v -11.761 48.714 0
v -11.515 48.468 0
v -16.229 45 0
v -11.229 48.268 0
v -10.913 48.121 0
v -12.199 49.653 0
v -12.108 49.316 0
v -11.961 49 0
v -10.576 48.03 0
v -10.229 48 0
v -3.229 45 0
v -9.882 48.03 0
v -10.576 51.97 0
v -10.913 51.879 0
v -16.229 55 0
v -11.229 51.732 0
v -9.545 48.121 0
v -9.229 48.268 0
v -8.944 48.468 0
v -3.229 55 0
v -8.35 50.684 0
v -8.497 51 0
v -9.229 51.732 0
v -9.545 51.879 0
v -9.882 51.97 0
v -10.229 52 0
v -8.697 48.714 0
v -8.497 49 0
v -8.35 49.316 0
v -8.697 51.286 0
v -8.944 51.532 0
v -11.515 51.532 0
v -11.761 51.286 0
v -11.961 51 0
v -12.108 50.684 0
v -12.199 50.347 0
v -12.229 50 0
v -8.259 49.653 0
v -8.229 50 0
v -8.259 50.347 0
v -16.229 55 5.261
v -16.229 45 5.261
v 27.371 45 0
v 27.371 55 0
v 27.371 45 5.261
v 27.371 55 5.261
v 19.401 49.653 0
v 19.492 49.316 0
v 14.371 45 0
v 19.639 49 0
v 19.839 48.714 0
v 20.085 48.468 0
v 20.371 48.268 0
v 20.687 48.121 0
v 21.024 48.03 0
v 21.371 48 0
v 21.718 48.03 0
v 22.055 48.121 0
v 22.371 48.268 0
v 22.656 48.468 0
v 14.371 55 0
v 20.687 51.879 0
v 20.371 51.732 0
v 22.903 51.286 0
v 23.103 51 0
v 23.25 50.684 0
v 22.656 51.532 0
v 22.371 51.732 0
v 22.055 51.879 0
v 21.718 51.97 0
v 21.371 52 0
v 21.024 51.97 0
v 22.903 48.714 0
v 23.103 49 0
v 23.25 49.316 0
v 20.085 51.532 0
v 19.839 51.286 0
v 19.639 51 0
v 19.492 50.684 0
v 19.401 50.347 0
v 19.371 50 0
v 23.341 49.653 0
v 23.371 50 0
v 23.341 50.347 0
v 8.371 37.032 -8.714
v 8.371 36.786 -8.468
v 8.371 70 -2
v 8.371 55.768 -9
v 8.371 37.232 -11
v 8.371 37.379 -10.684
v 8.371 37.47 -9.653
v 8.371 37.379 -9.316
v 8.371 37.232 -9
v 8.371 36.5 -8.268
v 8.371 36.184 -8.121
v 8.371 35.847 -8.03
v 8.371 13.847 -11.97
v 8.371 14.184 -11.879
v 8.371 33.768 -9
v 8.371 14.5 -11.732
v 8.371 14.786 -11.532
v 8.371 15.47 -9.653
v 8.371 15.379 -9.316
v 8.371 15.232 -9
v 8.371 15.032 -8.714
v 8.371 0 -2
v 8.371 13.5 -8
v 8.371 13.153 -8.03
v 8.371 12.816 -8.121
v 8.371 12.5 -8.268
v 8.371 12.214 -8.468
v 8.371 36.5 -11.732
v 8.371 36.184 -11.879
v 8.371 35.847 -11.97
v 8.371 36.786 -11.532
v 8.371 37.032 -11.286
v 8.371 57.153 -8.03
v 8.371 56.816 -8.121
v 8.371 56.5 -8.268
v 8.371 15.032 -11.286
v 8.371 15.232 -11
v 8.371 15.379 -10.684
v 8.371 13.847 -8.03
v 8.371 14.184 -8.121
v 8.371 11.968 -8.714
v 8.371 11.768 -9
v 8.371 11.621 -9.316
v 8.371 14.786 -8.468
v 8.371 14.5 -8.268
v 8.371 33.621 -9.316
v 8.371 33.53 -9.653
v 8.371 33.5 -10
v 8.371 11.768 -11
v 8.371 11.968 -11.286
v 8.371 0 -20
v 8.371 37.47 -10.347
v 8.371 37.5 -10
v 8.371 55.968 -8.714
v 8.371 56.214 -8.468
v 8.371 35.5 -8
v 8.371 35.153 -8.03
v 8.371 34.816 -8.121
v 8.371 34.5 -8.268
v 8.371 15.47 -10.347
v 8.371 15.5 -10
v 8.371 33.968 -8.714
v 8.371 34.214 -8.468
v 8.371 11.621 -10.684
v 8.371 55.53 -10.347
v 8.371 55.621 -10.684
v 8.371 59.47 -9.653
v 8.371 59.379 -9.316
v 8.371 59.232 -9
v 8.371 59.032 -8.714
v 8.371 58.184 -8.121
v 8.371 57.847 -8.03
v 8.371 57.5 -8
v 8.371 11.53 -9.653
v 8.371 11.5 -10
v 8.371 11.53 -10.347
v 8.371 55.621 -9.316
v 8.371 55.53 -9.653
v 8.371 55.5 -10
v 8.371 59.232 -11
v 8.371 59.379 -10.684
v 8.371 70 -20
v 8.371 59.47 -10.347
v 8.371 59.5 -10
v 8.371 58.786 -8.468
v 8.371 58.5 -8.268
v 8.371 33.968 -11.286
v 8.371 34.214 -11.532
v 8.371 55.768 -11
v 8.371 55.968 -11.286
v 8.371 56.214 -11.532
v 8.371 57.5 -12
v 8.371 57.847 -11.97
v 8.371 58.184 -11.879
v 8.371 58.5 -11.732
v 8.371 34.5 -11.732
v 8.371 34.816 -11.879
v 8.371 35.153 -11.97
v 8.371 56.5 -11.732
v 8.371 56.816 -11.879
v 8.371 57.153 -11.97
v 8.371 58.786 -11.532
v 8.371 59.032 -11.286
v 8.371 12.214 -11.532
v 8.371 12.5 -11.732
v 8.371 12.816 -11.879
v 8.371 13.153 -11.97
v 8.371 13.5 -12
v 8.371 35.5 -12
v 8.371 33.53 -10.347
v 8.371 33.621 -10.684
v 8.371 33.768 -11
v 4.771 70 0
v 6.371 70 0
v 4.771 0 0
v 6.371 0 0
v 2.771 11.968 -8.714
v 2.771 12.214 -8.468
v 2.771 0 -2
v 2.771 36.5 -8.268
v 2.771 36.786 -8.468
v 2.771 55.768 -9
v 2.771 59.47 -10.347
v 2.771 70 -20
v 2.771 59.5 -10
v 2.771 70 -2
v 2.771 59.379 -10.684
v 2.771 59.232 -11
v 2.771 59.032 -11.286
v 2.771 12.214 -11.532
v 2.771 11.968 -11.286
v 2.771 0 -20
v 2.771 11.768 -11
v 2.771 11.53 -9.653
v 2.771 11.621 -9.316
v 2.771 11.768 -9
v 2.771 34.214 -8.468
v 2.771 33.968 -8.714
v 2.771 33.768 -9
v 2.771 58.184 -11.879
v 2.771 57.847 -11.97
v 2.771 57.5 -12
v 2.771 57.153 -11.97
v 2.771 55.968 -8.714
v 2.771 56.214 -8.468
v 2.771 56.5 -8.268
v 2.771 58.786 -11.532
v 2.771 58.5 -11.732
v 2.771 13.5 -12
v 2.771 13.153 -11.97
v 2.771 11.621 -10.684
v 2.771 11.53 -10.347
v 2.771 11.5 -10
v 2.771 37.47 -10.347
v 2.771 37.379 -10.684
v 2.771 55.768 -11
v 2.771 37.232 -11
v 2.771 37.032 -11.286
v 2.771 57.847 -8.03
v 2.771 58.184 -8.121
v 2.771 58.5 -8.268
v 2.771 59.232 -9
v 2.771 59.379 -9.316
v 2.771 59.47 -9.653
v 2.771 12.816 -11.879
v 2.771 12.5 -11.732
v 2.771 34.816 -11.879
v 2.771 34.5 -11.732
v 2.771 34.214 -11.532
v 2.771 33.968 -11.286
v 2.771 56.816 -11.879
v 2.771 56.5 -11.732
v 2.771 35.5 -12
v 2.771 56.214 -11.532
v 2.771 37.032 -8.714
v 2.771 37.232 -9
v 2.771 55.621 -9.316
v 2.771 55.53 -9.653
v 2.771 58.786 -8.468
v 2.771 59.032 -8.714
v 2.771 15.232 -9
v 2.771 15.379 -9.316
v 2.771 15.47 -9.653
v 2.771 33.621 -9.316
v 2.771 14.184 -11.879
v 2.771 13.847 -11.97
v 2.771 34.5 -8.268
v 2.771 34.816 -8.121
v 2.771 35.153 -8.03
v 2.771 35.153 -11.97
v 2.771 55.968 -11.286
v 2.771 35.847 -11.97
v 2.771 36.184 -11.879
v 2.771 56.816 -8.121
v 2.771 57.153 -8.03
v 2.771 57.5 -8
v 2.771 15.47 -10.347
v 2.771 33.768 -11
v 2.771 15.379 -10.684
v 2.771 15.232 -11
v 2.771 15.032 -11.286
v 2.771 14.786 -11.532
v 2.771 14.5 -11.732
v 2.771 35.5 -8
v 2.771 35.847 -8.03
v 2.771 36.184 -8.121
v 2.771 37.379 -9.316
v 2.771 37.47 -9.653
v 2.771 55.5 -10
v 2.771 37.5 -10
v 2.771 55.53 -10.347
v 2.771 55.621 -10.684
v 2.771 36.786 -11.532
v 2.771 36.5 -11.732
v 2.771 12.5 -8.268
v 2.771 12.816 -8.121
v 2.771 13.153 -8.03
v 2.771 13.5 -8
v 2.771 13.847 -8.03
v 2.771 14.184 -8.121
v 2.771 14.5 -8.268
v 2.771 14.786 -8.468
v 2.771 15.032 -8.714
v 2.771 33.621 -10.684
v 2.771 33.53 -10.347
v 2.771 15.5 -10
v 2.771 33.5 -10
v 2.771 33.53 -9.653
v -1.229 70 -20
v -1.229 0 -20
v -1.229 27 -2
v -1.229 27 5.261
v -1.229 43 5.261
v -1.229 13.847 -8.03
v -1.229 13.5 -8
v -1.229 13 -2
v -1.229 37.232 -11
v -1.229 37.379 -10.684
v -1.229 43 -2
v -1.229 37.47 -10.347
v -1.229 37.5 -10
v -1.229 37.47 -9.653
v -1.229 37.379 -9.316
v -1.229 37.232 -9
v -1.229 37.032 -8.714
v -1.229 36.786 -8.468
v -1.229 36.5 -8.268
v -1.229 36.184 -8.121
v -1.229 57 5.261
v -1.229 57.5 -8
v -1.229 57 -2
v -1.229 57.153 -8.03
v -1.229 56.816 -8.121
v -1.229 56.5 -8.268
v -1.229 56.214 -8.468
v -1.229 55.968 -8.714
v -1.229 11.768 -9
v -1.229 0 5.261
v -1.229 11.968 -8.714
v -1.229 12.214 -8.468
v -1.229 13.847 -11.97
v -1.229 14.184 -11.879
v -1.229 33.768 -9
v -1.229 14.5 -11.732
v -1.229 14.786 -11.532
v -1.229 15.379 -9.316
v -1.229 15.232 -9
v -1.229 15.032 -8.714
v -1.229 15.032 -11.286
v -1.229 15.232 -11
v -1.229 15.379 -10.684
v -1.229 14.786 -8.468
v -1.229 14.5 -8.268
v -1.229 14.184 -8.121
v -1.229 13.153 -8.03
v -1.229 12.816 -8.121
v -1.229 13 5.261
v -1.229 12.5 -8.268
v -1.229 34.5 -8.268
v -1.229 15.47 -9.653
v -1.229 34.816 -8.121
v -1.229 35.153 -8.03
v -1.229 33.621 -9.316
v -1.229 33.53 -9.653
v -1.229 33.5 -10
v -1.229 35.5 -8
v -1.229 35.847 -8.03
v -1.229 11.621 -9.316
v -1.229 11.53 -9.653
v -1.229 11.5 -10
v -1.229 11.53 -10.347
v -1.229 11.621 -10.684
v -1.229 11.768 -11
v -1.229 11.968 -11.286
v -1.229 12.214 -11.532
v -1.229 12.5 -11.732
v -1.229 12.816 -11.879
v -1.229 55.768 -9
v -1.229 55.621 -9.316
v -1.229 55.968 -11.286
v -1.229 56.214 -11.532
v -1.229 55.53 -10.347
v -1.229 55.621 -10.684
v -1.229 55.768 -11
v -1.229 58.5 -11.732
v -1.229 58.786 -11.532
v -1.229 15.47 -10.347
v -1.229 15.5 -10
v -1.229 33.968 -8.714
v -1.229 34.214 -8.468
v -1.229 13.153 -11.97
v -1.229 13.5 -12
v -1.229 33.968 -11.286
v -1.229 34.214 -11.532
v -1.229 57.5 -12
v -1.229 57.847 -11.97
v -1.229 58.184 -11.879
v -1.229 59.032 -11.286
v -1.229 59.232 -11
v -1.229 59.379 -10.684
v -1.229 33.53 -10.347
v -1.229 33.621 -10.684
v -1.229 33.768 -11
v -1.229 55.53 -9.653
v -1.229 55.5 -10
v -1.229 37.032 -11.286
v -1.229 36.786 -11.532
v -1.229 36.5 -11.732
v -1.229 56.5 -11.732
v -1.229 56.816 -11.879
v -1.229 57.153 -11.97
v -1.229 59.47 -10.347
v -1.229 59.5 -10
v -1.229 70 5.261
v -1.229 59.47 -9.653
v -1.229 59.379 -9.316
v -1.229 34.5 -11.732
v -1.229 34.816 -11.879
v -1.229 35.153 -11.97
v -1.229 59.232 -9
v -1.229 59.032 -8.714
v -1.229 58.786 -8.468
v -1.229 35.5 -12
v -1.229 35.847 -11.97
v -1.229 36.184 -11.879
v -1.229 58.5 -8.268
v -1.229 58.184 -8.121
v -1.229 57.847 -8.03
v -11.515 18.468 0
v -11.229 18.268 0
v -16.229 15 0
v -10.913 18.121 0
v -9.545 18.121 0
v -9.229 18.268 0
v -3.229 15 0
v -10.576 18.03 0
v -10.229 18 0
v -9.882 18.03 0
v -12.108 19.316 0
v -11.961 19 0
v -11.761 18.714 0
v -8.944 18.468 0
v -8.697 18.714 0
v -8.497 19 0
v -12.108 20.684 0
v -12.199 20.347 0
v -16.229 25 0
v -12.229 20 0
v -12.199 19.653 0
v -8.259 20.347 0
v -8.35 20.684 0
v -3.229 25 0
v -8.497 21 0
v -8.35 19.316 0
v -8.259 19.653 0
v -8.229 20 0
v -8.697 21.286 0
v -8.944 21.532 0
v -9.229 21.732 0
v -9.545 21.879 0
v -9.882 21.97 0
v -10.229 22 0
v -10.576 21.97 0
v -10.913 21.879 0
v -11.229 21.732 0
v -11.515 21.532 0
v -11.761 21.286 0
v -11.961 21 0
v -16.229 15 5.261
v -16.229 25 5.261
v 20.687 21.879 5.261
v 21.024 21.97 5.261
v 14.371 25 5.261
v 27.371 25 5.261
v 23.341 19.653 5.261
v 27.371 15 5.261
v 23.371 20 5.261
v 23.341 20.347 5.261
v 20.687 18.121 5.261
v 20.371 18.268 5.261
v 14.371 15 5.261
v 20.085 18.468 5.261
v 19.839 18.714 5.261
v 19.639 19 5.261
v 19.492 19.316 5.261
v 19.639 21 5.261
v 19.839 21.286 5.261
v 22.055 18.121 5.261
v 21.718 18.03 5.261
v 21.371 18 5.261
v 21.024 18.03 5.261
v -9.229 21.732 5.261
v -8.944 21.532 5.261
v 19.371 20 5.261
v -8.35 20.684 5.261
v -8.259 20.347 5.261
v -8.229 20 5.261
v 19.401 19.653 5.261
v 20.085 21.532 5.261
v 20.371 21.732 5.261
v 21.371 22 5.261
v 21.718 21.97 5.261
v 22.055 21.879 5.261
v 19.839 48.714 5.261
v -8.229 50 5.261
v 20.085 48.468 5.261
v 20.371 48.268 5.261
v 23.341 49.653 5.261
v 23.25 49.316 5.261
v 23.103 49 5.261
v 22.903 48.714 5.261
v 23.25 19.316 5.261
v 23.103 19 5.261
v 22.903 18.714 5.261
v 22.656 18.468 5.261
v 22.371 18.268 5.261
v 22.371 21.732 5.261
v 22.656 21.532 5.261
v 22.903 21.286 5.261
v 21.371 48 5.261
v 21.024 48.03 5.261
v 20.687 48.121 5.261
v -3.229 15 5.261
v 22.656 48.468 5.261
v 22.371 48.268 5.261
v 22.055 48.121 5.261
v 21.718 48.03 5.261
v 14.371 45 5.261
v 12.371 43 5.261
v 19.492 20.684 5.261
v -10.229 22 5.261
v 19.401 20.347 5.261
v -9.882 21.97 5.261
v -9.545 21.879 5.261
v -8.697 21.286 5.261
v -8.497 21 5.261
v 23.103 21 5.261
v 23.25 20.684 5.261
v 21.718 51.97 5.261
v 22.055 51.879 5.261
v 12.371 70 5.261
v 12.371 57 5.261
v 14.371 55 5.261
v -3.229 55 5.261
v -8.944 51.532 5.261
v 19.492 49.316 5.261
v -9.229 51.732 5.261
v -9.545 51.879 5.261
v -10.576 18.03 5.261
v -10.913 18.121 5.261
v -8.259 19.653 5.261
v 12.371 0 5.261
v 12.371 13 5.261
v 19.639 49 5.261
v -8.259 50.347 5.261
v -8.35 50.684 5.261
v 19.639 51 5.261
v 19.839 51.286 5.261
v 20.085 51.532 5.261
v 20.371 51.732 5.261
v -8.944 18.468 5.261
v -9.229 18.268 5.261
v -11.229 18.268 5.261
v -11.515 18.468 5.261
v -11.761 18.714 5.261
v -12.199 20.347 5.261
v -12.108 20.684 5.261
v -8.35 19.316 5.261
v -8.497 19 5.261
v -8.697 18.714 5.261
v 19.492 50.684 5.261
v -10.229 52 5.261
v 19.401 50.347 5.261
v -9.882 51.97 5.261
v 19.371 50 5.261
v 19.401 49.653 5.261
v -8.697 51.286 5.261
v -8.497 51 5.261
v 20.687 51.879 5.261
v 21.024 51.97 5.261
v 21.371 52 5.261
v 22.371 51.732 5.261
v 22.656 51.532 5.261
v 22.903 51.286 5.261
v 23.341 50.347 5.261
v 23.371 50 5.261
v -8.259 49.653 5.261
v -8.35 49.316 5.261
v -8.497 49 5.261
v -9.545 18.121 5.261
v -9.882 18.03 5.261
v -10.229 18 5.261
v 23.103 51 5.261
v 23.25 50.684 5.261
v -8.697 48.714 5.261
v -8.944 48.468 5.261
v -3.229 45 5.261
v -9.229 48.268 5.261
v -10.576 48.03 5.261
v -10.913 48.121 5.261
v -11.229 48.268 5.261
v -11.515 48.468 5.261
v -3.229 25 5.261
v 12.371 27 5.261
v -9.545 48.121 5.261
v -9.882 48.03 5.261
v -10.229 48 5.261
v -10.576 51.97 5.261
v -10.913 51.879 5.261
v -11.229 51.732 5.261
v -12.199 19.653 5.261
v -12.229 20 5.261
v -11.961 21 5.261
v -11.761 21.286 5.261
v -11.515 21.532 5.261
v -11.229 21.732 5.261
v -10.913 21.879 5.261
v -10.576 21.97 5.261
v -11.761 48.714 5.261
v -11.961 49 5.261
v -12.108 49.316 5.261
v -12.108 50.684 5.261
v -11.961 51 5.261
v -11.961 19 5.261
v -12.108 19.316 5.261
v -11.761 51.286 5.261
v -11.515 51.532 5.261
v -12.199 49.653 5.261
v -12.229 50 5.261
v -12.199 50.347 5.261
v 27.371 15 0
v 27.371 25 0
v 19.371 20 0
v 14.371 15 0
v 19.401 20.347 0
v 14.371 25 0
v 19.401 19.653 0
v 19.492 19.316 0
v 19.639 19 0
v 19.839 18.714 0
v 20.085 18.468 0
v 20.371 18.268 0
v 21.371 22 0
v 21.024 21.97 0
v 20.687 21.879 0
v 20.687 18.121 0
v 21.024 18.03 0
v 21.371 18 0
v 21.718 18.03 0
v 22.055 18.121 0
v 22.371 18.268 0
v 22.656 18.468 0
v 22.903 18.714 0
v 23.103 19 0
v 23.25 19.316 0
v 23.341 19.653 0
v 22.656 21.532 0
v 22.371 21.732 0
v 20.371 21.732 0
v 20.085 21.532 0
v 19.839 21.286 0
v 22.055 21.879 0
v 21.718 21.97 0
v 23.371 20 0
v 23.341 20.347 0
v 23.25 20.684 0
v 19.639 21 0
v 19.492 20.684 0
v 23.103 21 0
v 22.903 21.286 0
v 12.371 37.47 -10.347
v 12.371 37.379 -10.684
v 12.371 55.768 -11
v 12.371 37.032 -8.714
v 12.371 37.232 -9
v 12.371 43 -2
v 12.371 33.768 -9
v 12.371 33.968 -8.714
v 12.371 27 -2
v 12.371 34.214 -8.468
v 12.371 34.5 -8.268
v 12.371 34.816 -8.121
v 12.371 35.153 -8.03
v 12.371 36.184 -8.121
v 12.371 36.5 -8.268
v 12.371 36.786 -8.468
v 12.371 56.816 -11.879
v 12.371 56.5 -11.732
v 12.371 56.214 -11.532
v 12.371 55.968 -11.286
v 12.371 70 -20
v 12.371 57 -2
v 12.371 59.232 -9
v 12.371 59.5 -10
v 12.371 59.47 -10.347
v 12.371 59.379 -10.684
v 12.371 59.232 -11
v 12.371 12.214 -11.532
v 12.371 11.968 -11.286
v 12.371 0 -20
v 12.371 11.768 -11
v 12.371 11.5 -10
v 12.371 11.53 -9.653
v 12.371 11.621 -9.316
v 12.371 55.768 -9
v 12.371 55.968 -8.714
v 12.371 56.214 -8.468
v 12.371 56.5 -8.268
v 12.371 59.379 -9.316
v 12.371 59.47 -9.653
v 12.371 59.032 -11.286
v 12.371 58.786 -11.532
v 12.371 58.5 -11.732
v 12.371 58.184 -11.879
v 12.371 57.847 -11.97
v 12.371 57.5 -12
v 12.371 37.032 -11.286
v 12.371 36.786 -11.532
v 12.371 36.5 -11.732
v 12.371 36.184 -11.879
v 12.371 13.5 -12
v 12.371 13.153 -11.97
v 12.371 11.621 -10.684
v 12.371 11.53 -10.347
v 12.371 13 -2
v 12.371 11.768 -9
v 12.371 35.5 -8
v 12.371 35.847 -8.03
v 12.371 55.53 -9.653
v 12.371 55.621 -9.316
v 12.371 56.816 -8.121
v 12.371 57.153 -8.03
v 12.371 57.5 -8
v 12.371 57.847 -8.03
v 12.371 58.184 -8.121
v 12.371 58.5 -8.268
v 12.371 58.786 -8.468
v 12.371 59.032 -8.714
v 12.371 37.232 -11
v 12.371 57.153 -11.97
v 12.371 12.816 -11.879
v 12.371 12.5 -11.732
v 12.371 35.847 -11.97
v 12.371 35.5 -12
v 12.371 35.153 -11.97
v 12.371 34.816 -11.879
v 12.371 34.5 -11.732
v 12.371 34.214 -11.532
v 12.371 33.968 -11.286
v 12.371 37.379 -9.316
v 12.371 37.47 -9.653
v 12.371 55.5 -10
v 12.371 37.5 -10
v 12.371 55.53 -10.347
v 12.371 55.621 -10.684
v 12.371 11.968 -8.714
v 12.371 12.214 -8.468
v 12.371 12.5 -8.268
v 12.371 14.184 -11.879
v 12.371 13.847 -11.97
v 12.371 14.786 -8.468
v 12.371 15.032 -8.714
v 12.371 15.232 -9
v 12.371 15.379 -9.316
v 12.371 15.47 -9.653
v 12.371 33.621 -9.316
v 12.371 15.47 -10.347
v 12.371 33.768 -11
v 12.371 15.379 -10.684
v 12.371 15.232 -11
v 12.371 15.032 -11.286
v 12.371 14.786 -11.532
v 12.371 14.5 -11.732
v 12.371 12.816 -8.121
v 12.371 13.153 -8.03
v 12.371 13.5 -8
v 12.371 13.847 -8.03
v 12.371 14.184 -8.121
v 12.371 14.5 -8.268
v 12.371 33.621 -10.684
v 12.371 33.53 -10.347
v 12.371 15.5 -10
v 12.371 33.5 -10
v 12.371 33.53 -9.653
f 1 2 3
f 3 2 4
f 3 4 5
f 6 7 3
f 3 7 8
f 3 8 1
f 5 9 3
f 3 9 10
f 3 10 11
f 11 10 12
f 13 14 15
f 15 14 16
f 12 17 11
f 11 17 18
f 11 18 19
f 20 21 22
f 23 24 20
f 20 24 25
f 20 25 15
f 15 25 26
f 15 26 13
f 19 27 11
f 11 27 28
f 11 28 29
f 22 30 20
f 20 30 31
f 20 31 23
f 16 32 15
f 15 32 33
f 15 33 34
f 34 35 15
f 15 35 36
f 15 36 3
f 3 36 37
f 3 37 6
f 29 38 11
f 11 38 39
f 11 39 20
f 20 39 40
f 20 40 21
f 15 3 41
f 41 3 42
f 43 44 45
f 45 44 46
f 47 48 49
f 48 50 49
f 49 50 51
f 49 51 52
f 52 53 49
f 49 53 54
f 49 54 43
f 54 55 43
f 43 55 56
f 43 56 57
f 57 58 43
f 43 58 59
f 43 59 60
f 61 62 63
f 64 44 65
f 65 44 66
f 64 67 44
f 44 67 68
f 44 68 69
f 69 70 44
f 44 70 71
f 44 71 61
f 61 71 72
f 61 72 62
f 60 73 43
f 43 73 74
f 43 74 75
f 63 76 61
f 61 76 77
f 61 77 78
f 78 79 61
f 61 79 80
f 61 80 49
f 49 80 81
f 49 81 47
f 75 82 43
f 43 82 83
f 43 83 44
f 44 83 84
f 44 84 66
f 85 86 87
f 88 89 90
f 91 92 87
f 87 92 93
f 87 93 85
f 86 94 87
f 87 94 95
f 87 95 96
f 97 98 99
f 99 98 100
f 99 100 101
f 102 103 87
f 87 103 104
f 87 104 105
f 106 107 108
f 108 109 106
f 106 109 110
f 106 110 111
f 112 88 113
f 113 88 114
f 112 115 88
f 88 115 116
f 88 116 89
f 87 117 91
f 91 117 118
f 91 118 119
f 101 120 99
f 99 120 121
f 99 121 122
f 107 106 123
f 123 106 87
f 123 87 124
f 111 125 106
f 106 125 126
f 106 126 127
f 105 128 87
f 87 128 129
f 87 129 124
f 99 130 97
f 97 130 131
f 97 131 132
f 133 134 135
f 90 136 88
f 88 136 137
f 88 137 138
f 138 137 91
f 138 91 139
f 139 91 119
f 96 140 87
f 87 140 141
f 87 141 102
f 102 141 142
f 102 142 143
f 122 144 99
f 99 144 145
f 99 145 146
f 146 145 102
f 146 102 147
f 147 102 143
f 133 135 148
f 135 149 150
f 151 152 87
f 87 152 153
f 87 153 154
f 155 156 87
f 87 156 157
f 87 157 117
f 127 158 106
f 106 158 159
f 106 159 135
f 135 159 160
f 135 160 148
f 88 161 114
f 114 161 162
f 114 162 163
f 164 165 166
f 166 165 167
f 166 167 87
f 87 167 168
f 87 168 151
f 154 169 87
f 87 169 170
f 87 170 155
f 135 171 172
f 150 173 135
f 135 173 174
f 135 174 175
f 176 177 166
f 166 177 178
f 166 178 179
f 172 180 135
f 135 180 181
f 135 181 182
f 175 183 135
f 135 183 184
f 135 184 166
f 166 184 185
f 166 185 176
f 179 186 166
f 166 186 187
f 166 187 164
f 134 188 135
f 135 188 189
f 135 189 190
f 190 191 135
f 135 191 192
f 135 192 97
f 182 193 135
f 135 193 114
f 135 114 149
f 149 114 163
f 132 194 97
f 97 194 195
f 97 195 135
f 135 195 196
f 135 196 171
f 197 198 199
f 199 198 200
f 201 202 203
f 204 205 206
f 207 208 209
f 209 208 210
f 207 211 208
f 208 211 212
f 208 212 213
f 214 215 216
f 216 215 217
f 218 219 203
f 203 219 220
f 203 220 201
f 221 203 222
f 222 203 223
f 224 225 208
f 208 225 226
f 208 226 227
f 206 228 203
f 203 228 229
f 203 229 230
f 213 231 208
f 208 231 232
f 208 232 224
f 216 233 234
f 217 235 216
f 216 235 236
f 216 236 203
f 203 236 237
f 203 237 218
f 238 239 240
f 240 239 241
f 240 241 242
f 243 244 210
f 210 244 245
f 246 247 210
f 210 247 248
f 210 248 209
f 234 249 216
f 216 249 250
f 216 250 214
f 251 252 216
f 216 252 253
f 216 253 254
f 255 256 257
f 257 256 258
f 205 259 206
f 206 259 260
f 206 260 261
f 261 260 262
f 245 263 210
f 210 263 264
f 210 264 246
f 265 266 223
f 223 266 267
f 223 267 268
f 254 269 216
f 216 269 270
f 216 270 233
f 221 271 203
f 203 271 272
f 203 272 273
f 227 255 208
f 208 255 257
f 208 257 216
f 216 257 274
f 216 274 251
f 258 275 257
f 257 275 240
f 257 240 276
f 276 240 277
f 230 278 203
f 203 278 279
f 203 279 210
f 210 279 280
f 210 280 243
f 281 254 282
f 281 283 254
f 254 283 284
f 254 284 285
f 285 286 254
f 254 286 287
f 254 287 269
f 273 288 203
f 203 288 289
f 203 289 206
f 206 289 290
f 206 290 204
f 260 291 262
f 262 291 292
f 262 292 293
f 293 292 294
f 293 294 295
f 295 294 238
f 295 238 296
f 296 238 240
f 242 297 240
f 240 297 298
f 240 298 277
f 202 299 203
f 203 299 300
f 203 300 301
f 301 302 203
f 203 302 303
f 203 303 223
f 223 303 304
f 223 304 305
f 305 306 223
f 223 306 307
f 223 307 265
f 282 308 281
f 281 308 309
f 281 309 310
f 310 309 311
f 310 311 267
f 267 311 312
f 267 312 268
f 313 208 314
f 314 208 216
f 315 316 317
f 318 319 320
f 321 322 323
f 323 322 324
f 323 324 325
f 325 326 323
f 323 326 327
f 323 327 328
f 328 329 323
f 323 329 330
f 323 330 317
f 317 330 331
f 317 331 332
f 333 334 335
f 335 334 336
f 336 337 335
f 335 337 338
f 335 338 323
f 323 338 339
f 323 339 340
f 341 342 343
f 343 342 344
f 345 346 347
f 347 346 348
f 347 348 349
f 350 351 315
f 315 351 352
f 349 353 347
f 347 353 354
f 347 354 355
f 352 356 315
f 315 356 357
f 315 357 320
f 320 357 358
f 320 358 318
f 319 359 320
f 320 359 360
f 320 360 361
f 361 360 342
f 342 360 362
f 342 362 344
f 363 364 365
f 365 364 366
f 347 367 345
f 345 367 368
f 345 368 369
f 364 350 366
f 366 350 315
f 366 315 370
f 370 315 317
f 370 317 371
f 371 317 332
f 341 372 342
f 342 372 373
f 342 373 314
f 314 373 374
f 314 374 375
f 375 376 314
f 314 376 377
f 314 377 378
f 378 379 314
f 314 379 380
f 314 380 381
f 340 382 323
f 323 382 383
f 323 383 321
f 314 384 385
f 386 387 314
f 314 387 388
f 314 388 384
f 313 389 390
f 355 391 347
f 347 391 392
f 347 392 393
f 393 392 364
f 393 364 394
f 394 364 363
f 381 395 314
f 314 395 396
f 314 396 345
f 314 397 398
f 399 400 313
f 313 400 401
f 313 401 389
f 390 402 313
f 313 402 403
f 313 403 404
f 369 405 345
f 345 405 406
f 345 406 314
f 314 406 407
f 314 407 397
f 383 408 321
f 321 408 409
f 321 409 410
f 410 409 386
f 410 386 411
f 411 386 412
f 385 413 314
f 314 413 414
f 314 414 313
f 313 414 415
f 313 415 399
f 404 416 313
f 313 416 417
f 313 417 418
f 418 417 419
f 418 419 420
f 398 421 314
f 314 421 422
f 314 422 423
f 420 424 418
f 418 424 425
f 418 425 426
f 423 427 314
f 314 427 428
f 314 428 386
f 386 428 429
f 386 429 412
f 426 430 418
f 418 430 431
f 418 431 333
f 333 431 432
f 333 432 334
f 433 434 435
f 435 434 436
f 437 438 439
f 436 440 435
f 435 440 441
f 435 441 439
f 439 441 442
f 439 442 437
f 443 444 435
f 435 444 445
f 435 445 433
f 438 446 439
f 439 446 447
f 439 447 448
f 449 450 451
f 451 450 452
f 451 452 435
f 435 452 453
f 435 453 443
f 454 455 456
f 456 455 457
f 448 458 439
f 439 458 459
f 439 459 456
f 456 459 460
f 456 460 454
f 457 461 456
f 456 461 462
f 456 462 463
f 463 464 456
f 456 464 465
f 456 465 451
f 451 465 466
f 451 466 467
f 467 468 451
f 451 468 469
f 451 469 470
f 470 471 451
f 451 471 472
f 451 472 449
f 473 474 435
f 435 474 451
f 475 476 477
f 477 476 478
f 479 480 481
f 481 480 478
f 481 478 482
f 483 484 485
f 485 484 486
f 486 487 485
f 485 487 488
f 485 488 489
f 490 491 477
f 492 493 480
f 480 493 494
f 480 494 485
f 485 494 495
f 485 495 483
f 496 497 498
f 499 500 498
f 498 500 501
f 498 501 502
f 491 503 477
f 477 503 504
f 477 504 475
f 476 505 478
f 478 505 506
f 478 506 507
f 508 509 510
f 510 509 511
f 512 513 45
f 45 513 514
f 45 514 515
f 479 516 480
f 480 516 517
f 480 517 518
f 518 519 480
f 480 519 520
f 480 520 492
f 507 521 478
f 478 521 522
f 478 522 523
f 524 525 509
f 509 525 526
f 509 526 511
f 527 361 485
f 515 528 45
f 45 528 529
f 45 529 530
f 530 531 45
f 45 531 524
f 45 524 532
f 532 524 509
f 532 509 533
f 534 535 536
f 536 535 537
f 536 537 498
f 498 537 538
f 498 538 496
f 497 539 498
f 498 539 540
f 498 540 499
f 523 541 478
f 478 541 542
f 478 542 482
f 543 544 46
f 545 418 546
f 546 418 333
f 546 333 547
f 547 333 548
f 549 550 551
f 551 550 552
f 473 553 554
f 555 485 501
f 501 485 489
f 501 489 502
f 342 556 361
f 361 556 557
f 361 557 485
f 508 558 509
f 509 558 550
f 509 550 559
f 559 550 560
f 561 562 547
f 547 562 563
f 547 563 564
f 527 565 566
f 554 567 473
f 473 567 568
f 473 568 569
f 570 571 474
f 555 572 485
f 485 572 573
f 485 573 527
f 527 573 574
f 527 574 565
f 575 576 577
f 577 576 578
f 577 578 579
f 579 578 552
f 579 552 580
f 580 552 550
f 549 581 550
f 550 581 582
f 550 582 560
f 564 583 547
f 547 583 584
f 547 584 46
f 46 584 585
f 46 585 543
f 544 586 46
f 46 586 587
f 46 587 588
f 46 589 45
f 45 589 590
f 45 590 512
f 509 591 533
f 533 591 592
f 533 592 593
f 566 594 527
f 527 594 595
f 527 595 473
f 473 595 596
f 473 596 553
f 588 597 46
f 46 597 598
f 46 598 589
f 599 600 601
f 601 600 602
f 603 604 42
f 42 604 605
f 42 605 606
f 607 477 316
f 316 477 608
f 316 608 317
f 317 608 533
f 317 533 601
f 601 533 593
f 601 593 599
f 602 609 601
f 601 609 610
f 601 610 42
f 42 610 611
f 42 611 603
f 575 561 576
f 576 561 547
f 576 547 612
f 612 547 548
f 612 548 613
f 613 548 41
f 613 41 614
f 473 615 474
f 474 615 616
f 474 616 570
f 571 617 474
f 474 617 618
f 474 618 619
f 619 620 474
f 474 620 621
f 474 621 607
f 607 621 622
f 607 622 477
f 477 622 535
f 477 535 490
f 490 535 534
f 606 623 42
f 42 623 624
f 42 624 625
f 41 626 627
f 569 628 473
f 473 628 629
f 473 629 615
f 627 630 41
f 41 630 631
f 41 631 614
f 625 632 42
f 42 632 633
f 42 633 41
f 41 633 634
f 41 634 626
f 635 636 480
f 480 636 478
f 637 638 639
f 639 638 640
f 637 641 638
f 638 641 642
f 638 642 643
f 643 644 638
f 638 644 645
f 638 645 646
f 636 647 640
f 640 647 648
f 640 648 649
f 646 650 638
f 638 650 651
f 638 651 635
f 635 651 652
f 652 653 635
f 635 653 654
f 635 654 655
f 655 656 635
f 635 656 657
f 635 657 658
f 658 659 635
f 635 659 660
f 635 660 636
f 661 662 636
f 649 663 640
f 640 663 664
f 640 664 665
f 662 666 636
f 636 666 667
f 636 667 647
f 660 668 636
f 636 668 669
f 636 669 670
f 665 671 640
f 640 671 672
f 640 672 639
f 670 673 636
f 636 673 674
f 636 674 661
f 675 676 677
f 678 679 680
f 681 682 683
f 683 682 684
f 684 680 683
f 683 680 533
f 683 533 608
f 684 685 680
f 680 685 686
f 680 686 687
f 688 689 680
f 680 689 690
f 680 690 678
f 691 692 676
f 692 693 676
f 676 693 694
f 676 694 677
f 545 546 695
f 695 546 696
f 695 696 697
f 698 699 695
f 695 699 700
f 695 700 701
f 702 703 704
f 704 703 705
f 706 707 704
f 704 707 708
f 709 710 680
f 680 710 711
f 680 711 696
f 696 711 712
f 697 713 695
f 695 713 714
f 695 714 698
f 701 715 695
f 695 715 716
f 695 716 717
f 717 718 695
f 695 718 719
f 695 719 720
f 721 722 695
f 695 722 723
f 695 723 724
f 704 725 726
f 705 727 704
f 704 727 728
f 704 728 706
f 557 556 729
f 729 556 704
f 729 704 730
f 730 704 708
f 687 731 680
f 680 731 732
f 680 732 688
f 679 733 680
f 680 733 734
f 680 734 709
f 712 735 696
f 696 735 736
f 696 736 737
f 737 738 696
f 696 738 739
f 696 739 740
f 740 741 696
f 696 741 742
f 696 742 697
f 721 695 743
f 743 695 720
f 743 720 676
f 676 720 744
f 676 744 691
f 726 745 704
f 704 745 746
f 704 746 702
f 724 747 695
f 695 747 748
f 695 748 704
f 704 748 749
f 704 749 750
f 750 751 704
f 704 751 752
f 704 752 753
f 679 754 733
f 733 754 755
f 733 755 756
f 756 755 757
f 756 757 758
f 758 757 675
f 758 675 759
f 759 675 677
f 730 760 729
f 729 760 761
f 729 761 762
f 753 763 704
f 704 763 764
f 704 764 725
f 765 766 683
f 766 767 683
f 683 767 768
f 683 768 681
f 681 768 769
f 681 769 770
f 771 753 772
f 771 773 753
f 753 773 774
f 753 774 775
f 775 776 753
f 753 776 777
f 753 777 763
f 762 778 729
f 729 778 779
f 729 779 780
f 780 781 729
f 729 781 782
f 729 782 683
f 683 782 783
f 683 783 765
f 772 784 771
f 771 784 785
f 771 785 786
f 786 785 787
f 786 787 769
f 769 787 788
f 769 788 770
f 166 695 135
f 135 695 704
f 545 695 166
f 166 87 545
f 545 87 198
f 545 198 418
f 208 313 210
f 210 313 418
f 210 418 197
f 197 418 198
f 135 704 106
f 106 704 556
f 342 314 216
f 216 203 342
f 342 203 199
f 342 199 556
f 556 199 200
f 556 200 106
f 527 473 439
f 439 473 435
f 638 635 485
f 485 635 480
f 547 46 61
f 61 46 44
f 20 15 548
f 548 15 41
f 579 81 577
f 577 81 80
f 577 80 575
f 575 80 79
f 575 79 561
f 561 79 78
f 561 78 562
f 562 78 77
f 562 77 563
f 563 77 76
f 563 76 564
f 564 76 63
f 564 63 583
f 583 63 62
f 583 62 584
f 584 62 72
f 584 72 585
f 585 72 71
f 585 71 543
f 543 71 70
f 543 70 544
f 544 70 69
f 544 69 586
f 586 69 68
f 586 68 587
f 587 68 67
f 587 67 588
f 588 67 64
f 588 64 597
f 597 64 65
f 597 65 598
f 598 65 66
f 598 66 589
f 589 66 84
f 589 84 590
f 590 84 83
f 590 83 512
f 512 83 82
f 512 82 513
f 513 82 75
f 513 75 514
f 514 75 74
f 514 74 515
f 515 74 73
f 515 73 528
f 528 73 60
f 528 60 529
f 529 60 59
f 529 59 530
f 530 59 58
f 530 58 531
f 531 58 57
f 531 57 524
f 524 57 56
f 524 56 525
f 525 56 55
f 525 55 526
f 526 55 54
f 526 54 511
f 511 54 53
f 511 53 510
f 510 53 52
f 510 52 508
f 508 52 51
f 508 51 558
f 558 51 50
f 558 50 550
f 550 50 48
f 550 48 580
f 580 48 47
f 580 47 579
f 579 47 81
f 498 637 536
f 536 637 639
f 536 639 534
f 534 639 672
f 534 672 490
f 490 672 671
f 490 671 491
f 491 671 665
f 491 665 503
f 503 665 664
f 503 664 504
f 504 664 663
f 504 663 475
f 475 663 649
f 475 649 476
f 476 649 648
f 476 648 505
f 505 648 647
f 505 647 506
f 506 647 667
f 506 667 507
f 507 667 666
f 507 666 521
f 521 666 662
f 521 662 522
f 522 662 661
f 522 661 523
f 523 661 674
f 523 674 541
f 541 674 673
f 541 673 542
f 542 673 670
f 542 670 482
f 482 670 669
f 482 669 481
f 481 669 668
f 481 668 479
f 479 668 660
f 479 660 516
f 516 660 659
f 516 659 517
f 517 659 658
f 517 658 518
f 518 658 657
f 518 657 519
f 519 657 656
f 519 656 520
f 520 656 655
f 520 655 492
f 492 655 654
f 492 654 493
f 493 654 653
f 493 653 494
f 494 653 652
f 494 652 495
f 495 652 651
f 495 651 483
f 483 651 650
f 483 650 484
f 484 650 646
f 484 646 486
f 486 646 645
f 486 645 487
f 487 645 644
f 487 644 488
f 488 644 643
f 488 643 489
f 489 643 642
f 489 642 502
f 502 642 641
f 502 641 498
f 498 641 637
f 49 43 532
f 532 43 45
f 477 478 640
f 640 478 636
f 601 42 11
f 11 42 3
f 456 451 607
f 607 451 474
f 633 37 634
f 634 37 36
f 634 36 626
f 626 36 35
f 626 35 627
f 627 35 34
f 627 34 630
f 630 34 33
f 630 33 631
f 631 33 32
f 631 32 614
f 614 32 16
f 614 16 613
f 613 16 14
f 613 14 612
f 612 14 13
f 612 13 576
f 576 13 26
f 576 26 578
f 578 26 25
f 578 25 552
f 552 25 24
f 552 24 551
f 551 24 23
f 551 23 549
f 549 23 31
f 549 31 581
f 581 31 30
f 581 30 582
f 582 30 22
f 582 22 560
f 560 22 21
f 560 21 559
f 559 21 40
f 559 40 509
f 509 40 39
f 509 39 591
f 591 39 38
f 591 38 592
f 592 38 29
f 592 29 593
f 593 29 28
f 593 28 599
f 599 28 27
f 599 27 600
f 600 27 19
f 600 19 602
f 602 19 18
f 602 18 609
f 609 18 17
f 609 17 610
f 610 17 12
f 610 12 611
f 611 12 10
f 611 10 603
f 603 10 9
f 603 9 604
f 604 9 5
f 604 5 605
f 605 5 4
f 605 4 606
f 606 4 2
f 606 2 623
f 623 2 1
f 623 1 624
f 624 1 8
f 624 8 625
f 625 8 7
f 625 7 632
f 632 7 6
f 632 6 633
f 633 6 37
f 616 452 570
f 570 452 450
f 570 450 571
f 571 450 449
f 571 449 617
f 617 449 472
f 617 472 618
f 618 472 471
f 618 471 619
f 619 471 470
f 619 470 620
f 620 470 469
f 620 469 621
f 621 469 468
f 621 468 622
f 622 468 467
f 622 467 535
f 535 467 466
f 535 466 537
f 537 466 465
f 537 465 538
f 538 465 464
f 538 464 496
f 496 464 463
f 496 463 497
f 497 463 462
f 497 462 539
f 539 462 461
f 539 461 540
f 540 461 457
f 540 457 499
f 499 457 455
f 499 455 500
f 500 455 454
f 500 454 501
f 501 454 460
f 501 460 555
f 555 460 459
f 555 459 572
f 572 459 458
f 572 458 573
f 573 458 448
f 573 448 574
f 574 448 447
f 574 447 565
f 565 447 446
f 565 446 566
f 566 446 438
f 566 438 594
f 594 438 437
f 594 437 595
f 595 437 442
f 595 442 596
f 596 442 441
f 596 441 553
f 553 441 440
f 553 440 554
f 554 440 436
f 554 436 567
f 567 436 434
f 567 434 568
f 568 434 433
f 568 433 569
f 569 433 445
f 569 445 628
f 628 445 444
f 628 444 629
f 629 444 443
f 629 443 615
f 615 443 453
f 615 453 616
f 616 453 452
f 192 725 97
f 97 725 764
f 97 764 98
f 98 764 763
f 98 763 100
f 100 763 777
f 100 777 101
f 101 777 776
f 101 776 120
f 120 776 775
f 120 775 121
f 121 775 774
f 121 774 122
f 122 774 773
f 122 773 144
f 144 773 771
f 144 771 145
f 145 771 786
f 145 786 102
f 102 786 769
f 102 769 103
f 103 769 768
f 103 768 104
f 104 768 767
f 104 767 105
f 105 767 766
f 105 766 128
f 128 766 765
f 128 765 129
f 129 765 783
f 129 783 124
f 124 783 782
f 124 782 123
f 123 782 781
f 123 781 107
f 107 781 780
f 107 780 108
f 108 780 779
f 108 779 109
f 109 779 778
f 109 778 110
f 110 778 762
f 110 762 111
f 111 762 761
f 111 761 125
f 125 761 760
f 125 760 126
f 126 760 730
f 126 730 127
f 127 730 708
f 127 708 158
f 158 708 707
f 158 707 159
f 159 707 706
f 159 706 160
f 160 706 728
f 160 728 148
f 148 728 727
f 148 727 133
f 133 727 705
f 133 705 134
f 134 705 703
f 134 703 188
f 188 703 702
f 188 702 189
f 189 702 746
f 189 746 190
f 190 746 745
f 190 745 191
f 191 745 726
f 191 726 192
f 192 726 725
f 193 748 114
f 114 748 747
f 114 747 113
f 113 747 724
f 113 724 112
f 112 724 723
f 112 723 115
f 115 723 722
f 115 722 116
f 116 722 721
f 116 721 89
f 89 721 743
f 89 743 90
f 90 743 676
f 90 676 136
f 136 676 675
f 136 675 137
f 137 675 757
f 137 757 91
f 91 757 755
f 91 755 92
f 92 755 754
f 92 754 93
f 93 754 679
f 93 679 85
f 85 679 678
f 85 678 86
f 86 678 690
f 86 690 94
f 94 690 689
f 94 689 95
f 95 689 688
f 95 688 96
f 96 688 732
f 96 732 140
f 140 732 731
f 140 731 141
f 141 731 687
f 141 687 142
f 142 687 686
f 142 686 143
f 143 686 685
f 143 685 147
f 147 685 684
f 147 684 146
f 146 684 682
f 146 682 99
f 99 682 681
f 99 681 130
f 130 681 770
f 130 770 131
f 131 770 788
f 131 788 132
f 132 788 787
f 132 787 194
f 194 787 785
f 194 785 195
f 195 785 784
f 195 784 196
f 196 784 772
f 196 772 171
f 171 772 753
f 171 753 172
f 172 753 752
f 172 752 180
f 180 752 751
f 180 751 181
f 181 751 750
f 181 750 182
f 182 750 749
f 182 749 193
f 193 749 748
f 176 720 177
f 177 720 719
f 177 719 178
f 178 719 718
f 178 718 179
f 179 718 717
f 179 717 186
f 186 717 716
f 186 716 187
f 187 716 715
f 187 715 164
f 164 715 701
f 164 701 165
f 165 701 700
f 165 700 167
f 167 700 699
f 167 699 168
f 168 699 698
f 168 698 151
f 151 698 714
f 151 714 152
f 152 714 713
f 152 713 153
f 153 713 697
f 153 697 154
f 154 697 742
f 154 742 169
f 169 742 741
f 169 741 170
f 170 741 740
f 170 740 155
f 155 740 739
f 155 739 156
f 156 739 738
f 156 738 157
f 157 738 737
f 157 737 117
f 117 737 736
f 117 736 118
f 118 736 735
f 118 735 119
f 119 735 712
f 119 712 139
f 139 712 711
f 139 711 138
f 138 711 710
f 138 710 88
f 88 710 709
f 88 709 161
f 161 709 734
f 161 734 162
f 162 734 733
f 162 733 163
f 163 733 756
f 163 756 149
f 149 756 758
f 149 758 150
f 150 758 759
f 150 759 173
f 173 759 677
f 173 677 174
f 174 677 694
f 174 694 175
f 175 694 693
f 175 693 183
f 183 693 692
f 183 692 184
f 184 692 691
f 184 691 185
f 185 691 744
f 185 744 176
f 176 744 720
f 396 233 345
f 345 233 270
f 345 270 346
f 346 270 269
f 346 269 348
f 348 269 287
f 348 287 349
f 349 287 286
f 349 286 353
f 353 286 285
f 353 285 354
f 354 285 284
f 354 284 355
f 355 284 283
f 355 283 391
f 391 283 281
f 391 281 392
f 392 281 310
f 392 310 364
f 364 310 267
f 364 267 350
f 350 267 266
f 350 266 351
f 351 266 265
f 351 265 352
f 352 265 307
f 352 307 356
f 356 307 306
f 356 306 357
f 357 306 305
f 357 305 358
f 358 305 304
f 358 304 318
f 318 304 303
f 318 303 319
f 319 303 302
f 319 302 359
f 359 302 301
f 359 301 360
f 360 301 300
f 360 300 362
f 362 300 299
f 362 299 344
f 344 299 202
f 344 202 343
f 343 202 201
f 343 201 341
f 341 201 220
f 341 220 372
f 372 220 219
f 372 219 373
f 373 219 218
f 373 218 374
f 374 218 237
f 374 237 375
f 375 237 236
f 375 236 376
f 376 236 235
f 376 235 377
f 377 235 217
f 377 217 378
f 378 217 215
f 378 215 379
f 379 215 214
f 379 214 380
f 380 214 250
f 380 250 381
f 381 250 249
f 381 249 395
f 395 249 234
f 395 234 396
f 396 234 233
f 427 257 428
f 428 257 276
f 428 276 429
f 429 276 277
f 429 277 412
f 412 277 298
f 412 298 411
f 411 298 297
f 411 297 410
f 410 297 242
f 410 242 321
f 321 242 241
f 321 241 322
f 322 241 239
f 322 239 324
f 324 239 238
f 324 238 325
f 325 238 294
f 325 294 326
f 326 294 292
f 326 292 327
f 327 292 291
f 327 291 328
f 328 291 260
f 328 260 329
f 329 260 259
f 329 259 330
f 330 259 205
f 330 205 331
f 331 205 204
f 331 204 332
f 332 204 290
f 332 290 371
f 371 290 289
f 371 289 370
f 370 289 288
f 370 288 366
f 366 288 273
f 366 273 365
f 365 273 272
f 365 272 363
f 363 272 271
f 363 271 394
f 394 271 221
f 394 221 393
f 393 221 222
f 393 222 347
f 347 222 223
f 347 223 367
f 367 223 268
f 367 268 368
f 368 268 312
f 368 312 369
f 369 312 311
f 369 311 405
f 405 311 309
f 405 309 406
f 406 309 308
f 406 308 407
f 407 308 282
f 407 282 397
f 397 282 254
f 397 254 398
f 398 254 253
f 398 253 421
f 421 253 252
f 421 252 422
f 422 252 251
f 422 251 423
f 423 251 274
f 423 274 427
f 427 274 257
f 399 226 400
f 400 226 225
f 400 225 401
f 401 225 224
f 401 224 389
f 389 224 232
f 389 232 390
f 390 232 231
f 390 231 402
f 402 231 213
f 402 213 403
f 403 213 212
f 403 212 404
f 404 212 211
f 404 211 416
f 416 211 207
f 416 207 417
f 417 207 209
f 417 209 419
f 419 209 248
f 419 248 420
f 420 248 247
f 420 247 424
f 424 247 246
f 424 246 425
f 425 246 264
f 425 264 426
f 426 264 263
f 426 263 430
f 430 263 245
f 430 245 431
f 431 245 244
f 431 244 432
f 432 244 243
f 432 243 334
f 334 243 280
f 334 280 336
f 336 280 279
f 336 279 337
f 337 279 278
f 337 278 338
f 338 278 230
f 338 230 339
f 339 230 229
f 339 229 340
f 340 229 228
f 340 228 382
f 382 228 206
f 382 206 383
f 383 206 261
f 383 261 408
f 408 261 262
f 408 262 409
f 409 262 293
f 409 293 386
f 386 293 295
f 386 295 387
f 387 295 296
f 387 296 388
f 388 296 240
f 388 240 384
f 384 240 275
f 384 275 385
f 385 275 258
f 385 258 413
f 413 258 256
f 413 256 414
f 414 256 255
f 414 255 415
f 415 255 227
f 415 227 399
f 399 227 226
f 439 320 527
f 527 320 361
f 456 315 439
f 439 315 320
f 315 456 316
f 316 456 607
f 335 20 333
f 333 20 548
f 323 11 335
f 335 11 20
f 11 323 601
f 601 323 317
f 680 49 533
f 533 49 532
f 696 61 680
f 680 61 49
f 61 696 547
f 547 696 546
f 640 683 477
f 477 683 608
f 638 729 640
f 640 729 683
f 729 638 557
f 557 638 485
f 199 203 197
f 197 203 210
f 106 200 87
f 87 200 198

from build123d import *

# Parameters (mm, degrees)
BOSS_EXTRUDE1_DEPTH     = 70
CUT_EXTRUDE1_DEPTH      = 78.776388862
CUT_EXTRUDE1_DEPTH_BACK = 78.776388862
SKETCH2_R               = 2
SKETCH2_W               = 15
SKETCH2_H               = 15
SKETCH2_H_2             = 20
CUT_EXTRUDE2_DEPTH      = 79.217389371
CUT_EXTRUDE2_DEPTH_BACK = 79.217389371
SKETCH3_R               = 2
CHAMFER1_SIZE           = 2


with BuildPart() as part:
    # Sketch1 → Boss-Extrude1 (new body)
    with BuildSketch(Plane(origin=(0, 0, 0), x_dir=(1, 0, 0), z_dir=(0, 1, 0))):
        Polygon((-16.229090909, 0), (-1.229090909, 0), (-1.229090909, 20), (2.770909091, 20), (2.770909091, 0), (8.370909091, 0), (8.370909091, 20), (12.370909091, 20), (12.370909091, 0), (27.370909091, 0), (27.370909091, -5.261218749), (-16.229090909, -5.261218749), align=None)
    extrude(amount=BOSS_EXTRUDE1_DEPTH)

    # Sketch2 → Cut-Extrude1 (cut, two sides: drawn at the far end of the back side and taken through both)
    with BuildSketch(Plane(origin=(0, 0, 0), x_dir=(-1, 0, 0), z_dir=(0, 0, -1)).offset(-CUT_EXTRUDE1_DEPTH_BACK)):
        with Locations((-21.370909091, 50)):
            Circle(SKETCH2_R)
        with Locations(Location((10.229090909, 50, 0), (0, 0, 180))):
            Circle(SKETCH2_R)
        with Locations((10.229090909, 20)):
            Circle(SKETCH2_R)
        with Locations(Location((-21.370909091, 20, 0), (0, 0, 180))):
            Circle(SKETCH2_R)
        with Locations((-19.870909091, 62.5)):
            Rectangle(SKETCH2_W, SKETCH2_H)
        with Locations((-19.870909091, 35)):
            Rectangle(SKETCH2_W, SKETCH2_H_2)
        with Locations((8.729090909, 35)):
            Rectangle(SKETCH2_W, SKETCH2_H_2)
        with Locations((8.729090909, 62.5)):
            Rectangle(SKETCH2_W, SKETCH2_H)
        with Locations((8.729090909, 7.5)):
            Rectangle(SKETCH2_W, SKETCH2_H)
        with Locations((-19.870909091, 7.5)):
            Rectangle(SKETCH2_W, SKETCH2_H)
    extrude(amount=CUT_EXTRUDE1_DEPTH + CUT_EXTRUDE1_DEPTH_BACK, mode=Mode.SUBTRACT)

    # Sketch3 → Cut-Extrude2 (cut, two sides: drawn at the far end of the back side and taken through both)
    with BuildSketch(Plane(origin=(12.370909091, 0, 0), x_dir=(0, 0, -1), z_dir=(1, 0, 0)).offset(-CUT_EXTRUDE2_DEPTH_BACK)):
        with Locations((10, 57.5)):
            Circle(SKETCH3_R)
        with Locations((10, 35.5)):
            Circle(SKETCH3_R)
        with Locations((10, 13.5)):
            Circle(SKETCH3_R)
    extrude(amount=CUT_EXTRUDE2_DEPTH + CUT_EXTRUDE2_DEPTH_BACK, mode=Mode.SUBTRACT)

    # Chamfer1
    chamfer1_edges = [part.edges().sort_by_distance(p)[0] for p in [
        (-1.229090909, 25, 2.630609375),
        (12.370909091, 25, 2.630609375),
        (12.370909091, 45, 2.630609375),
        (12.370909091, 55, 2.630609375),
        (2.770909091, 35, 0),
        (8.370909091, 35, 0),
        (12.370909091, 50, 0),
        (12.370909091, 20, 0),
        (-1.229090909, 50, 0),
        (-1.229090909, 20, 0),
        (12.370909091, 15, 2.630609375),
        (-1.229090909, 15, 2.630609375),
        (-1.229090909, 55, 2.630609375),
        (-1.229090909, 45, 2.630609375),
    ]]
    chamfer(chamfer1_edges, length=CHAMFER1_SIZE)


solid = part.part
